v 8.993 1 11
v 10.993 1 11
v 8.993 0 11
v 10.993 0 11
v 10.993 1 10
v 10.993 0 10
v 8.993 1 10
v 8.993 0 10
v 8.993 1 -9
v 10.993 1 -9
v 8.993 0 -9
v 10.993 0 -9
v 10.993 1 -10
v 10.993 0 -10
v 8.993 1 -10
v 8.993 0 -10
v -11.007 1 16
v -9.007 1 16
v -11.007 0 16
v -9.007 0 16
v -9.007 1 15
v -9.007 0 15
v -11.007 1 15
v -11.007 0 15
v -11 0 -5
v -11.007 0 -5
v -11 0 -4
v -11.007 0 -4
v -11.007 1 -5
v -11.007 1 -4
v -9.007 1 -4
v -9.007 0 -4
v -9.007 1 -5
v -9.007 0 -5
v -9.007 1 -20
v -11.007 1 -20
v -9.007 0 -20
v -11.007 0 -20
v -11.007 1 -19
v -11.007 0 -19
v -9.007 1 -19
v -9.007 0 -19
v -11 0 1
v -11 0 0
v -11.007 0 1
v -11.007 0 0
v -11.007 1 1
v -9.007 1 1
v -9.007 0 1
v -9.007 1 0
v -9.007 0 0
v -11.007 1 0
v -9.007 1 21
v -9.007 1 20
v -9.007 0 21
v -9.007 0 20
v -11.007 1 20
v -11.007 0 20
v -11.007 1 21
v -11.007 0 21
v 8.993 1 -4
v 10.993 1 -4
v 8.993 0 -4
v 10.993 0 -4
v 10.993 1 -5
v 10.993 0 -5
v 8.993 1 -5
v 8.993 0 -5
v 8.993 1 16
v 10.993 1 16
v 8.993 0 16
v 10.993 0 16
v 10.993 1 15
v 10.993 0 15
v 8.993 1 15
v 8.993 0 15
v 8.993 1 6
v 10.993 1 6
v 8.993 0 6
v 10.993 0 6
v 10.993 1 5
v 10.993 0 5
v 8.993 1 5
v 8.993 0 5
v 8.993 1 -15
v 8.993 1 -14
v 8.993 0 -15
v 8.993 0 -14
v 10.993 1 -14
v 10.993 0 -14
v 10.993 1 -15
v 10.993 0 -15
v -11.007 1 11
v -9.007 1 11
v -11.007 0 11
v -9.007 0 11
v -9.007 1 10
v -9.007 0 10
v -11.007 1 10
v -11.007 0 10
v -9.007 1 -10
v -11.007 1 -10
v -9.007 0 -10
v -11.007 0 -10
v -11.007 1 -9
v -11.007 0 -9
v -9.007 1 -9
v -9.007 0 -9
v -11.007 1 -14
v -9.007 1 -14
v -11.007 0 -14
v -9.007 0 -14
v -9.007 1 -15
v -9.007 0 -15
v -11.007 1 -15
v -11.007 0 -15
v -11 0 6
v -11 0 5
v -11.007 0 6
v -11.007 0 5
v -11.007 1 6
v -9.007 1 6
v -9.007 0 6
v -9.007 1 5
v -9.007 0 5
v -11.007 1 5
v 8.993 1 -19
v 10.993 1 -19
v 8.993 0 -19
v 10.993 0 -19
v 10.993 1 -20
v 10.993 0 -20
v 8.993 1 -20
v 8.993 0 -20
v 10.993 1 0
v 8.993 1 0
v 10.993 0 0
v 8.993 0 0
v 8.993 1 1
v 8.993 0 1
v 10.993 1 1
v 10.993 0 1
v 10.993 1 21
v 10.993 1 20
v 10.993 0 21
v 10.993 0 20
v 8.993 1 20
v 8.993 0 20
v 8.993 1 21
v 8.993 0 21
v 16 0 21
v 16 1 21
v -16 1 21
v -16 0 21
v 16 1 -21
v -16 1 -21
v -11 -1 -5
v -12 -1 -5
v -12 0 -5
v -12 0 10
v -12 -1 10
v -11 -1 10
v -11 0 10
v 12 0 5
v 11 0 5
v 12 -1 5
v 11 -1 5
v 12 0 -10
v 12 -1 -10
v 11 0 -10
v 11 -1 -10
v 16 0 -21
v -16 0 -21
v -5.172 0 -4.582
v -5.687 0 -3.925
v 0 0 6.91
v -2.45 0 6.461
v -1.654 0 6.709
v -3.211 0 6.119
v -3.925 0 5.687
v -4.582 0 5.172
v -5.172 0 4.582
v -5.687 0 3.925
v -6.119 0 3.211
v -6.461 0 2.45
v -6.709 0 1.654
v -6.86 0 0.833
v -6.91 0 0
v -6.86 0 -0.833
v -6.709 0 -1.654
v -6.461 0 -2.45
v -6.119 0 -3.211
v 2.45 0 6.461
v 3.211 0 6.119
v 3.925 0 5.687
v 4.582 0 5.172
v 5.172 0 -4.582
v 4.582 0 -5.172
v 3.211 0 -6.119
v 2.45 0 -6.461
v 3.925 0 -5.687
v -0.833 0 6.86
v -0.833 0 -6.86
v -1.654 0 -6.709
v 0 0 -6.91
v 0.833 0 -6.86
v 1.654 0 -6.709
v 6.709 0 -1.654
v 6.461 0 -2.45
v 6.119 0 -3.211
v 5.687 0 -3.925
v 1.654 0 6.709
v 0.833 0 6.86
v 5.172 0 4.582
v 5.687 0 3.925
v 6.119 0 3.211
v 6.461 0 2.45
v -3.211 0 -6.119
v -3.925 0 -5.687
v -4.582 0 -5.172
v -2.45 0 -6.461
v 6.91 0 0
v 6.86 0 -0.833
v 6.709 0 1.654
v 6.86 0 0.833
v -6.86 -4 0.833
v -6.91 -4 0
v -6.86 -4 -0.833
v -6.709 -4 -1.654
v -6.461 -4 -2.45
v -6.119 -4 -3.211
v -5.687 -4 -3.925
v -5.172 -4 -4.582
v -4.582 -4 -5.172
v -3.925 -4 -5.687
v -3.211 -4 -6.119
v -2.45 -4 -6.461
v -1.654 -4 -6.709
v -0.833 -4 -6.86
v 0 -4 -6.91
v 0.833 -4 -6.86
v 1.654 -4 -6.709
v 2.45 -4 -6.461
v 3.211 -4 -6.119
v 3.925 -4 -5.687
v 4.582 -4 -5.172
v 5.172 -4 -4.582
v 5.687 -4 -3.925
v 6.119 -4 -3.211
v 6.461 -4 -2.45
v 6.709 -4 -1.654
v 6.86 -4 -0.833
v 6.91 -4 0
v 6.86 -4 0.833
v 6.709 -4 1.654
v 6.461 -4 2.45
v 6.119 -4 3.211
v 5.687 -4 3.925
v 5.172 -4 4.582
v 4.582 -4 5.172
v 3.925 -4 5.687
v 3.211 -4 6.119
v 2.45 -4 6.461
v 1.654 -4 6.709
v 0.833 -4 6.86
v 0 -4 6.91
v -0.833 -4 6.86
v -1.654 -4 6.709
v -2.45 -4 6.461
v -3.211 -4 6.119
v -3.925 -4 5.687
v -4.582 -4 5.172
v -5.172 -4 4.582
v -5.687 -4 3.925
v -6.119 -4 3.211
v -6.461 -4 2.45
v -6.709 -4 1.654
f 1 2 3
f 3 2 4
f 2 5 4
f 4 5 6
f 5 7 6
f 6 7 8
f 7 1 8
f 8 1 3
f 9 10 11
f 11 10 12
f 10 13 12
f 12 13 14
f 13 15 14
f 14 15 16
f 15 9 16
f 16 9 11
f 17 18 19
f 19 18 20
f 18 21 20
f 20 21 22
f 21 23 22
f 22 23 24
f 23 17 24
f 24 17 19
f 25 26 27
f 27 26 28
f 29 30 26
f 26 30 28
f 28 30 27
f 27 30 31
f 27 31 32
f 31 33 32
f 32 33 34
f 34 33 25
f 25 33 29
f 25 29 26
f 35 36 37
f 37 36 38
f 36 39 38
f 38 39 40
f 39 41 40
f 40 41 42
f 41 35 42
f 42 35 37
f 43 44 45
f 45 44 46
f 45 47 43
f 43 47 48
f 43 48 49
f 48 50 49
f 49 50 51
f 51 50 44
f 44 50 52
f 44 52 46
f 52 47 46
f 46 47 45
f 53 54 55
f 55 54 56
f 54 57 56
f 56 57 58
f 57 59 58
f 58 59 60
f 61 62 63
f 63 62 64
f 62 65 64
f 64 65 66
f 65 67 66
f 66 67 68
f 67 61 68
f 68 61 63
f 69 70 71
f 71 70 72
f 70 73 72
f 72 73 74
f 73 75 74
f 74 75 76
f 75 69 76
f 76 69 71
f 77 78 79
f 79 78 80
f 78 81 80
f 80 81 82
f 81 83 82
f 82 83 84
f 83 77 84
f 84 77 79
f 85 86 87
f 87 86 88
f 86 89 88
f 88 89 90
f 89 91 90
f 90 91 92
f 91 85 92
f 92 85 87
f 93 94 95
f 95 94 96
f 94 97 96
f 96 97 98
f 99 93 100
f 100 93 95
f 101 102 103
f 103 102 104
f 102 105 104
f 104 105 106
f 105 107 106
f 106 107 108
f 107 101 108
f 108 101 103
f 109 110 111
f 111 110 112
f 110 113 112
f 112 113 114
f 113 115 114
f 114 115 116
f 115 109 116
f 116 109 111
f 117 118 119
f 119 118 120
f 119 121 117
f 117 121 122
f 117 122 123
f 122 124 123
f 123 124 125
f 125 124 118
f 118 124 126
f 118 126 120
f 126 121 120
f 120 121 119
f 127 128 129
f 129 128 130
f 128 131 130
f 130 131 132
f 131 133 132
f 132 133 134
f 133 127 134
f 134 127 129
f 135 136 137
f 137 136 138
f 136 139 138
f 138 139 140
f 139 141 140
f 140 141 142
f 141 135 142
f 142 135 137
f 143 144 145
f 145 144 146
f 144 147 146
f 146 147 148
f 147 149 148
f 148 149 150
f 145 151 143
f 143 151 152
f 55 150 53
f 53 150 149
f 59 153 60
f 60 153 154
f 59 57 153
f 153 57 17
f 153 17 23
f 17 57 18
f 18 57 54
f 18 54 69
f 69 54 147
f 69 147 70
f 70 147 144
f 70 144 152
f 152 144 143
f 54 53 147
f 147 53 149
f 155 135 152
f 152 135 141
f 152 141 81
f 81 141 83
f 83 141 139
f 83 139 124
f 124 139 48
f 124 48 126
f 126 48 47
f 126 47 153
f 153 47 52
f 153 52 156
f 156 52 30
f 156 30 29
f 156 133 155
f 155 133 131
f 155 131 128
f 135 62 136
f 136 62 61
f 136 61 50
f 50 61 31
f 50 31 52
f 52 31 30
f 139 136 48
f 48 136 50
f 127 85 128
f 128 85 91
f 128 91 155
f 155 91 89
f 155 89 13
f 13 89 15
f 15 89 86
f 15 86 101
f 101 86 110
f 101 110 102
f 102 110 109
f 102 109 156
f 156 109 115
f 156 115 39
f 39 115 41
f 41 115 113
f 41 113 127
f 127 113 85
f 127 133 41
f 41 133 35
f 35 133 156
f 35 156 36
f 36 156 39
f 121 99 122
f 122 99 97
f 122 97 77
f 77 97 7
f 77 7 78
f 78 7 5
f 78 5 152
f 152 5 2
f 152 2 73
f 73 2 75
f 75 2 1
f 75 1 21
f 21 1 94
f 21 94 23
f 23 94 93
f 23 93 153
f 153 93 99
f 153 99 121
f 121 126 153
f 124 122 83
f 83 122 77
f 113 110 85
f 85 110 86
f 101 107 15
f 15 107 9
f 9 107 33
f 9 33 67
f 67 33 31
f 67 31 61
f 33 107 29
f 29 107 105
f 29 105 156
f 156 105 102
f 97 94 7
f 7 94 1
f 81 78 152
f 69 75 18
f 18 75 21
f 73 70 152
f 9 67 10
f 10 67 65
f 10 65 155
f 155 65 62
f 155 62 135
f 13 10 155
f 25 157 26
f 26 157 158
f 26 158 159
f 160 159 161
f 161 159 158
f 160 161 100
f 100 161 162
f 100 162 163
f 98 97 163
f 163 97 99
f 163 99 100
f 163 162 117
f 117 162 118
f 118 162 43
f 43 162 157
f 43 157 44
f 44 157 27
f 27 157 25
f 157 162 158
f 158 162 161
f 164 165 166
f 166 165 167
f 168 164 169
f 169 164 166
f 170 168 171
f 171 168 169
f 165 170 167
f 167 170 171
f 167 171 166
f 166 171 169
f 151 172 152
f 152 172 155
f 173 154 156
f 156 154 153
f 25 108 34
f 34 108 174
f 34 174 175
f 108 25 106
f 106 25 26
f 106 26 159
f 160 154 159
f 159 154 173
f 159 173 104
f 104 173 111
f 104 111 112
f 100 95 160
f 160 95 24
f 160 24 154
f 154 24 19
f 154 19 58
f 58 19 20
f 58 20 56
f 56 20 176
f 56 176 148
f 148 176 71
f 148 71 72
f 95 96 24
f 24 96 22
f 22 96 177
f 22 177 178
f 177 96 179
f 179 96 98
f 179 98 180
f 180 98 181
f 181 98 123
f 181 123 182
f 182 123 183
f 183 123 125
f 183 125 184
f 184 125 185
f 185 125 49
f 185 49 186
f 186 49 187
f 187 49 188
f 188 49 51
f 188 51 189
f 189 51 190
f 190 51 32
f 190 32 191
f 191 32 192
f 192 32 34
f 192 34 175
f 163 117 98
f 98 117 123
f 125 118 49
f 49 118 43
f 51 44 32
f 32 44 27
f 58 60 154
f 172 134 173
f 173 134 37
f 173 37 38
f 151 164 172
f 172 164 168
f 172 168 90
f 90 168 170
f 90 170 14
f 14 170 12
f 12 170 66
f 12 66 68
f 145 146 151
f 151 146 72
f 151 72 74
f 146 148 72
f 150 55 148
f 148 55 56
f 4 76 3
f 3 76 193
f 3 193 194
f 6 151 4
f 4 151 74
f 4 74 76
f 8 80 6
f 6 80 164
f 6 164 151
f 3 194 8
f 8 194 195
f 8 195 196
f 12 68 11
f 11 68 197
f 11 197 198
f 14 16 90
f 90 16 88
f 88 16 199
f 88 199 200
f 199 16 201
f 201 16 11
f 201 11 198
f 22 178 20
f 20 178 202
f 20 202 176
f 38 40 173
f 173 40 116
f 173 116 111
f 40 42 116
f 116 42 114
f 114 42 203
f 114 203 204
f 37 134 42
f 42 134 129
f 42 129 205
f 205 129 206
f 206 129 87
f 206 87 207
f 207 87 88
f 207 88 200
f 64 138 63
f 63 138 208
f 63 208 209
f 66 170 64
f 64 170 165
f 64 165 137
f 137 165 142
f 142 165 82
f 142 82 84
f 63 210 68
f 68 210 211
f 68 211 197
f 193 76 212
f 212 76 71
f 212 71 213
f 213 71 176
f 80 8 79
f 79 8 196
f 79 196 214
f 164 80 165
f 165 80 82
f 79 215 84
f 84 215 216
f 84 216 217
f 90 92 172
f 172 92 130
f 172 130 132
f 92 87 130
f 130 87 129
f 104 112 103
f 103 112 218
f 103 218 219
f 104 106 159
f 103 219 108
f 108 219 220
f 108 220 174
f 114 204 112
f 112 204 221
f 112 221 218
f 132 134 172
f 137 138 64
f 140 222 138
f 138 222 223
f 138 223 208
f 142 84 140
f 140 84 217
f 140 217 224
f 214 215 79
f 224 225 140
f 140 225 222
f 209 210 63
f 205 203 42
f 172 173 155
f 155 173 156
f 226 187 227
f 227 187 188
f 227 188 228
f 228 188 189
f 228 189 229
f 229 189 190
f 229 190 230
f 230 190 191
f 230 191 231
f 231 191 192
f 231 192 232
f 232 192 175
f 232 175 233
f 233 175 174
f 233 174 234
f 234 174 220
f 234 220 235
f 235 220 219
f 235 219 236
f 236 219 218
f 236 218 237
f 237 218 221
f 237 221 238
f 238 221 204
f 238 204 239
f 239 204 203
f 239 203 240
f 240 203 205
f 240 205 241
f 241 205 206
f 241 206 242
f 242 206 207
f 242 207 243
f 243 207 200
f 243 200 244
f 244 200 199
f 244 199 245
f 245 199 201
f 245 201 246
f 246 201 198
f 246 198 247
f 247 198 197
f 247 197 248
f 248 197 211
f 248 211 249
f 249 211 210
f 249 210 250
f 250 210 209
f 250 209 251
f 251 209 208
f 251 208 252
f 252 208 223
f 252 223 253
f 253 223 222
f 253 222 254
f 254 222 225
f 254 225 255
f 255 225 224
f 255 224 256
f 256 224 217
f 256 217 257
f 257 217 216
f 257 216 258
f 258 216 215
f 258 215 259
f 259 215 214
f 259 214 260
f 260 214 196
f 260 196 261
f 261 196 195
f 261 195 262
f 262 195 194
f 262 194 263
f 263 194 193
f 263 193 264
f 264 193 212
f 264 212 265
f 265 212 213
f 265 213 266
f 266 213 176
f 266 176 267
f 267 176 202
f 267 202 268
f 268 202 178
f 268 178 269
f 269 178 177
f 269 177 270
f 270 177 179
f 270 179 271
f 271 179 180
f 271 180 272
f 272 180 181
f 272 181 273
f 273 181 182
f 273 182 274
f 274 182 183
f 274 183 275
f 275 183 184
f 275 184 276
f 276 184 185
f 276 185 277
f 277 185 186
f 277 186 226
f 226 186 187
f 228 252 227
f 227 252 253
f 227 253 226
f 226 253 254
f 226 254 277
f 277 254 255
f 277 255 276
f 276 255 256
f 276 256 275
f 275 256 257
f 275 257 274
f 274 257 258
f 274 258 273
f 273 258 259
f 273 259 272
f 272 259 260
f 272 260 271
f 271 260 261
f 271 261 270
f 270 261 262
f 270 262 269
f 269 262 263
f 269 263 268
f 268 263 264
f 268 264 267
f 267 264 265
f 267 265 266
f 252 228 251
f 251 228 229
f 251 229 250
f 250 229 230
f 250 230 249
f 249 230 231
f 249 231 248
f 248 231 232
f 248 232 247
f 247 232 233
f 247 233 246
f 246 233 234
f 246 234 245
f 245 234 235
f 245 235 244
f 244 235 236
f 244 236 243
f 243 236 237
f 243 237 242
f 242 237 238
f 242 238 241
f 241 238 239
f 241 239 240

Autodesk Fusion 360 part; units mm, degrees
sketch "Sketch1" plane through (0, 0, 0) normal (0, 1, 0) x (1, 0, 0)
  circle A0 centre (0, 0) radius 6.91
  dimension "d1" = 13.82
extrude "Extrude1" add sketch "Sketch1" against normal blind 4 makes body 1
sketch "Sketch2" plane through (0, 0, 0) normal (0, 1, 0) x (1, 0, 0)
  line L0 (11, -21) -> (-11, -21)
  line L1 (-11, -21) -> (-11, 21)
  line L2 (-11, 21) -> (11, 21)
  line L3 (11, 21) -> (11, -21)
  line L4 (11, -21) -> (-11, 21) construction
  line L5 (-11, -21) -> (11, 21) construction
  dimension "d4" = 22
  dimension "d5" = 42
extrude "Extrude2" add sketch "Sketch2" along normal blind 1 bodies 1
extrude "Extrude3" add 1 faces at (-11, 0.3333, 7) along direction (-1, 0, 0) blind 5 on bodies 1 bodies 1
extrude "Extrude4" add 1 faces at (11, 0.3333, -7) along direction (1, 0, 0) blind 5 on bodies 1 bodies 1
sketch "Sketch3" plane through (0, 0, 0) normal (0, -1, 0) x (1, 0, 0)
  line L0 (-16, -21) -> (16, -21)
  line L1 (16, -21) -> (16, 21)
  line L2 (16, 21) -> (-16, 21)
  line L3 (-16, 21) -> (-16, -21)
  circle A0 centre (0, 0) radius 6.91
  line L4 (11, -10) -> (12, -10)
  line L5 (12, -10) -> (12, 5)
  line L6 (12, 5) -> (11, 5)
  line L7 (11, 5) -> (11, -10)
  line L8 (-11, 10) -> (-12, 10)
  line L9 (-12, 10) -> (-12, -5)
  line L10 (-12, -5) -> (-11, -5)
  line L11 (-11, -5) -> (-11, 10)
  dimension "d67" = 15
extrude "Extrude5" add sketch "Sketch3" along normal blind 1 separate body contours L4 L5 L6 L7 makes body 2
extrude "Extrude6" add sketch "Sketch3" along normal blind 1 separate body contours L8 L9 L10 L11 makes body 3
combine "Combine1" operation add target body 1 tool bodies 2 3
sketch "Sketch4" plane through (0, 1, 0) normal (0, 1, 0) x (-1, 0, 0)
  line L0 (-16, -21) -> (16, -21)
  line L1 (16, -21) -> (16, 21)
  line L2 (16, 21) -> (-16, 21)
  line L3 (-16, 21) -> (-16, -21)
  line L4 (11.0067, 21) -> (9.0067, 21)
  line L5 (9.0067, 21) -> (9.0067, 20)
  line L6 (9.0067, 20) -> (11.0067, 20)
  line L7 (11.0067, 20) -> (11.0067, 21)
  line L8 (9.0067, 15) -> (11.0067, 15)
  line L9 (9.0067, 16) -> (9.0067, 15)
  line L10 (11.0067, 16) -> (9.0067, 16)
  line L11 (11.0067, 15) -> (11.0067, 16)
  line L12 (9.0067, 5) -> (11.0067, 5)
  line L13 (9.0067, 6) -> (9.0067, 5)
  line L14 (11.0067, 6) -> (9.0067, 6)
  line L15 (11.0067, 5) -> (11.0067, 6)
  line L16 (9.0067, 10) -> (11.0067, 10)
  line L17 (9.0067, 11) -> (9.0067, 10)
  line L18 (11.0067, 11) -> (9.0067, 11)
  line L19 (11.0067, 10) -> (11.0067, 11)
  line L20 (11.0067, 1) -> (9.0067, 1)
  line L21 (9.0067, 0) -> (11.0067, 0)
  line L22 (9.0067, 1) -> (9.0067, 0)
  line L23 (11.0067, 0) -> (11.0067, 1)
  line L24 (11.0067, -4) -> (9.0067, -4)
  line L25 (9.0067, -4) -> (9.0067, -5)
  line L26 (11.0067, -5) -> (11.0067, -4)
  line L27 (9.0067, -5) -> (11.0067, -5)
  line L28 (11.0067, -9) -> (9.0067, -9)
  line L29 (9.0067, -10) -> (11.0067, -10)
  line L30 (11.0067, -10) -> (11.0067, -9)
  line L31 (9.0067, -9) -> (9.0067, -10)
  line L32 (11.0067, -14) -> (9.0067, -14)
  line L33 (9.0067, -14) -> (9.0067, -15)
  line L34 (9.0067, -15) -> (11.0067, -15)
  line L35 (11.0067, -15) -> (11.0067, -14)
  line L36 (11.0067, -19) -> (9.0067, -19)
  line L37 (9.0067, -20) -> (11.0067, -20)
  line L38 (11.0067, -20) -> (11.0067, -19)
  line L39 (9.0067, -19) -> (9.0067, -20)
  line L40 (-10.9933, 21) -> (-10.9933, 20)
  line L41 (-10.9933, 20) -> (-8.9933, 20)
  line L42 (-8.9933, 20) -> (-8.9933, 21)
  line L43 (-8.9933, 21) -> (-10.9933, 21)
  line L44 (-10.9933, 16) -> (-10.9933, 15)
  line L45 (-10.9933, 15) -> (-8.9933, 15)
  line L46 (-8.9933, 16) -> (-10.9933, 16)
  line L47 (-8.9933, 15) -> (-8.9933, 16)
  line L48 (-10.9933, 10) -> (-8.9933, 10)
  line L49 (-8.9933, 11) -> (-10.9933, 11)
  line L50 (-10.9933, 11) -> (-10.9933, 10)
  line L51 (-8.9933, 10) -> (-8.9933, 11)
  line L52 (-10.9933, 6) -> (-10.9933, 5)
  line L53 (-8.9933, 6) -> (-10.9933, 6)
  line L54 (-10.9933, 5) -> (-8.9933, 5)
  line L55 (-8.9933, 5) -> (-8.9933, 6)
  line L56 (-8.9933, 0) -> (-8.9933, 1)
  line L57 (-10.9933, 0) -> (-8.9933, 0)
  line L58 (-8.9933, 1) -> (-10.9933, 1)
  line L59 (-10.9933, 1) -> (-10.9933, 0)
  line L60 (-8.9933, -4) -> (-10.9933, -4)
  line L61 (-10.9933, -4) -> (-10.9933, -5)
  line L62 (-10.9933, -5) -> (-8.9933, -5)
  line L63 (-8.9933, -5) -> (-8.9933, -4)
  line L64 (-8.9933, -9) -> (-10.9933, -9)
  line L65 (-10.9933, -10) -> (-8.9933, -10)
  line L66 (-10.9933, -9) -> (-10.9933, -10)
  line L67 (-8.9933, -10) -> (-8.9933, -9)
  line L68 (-8.9933, -14) -> (-10.9933, -14)
  line L69 (-10.9933, -14) -> (-10.9933, -15)
  line L70 (-8.9933, -15) -> (-8.9933, -14)
  line L71 (-10.9933, -15) -> (-8.9933, -15)
  line L72 (-8.9933, -19) -> (-10.9933, -19)
  line L73 (-10.9933, -19) -> (-10.9933, -20)
  line L74 (-10.9933, -20) -> (-8.9933, -20)
  line L75 (-8.9933, -20) -> (-8.9933, -19)
  dimension "d88" = 2
  dimension "d89" = 1
  dimension "d90" = 2
  dimension "d91" = 1
  dimension "d92" = 2
  dimension "d93" = 1
  dimension "d94" = 2
  dimension "d95" = 1
  dimension "d96" = 2
  dimension "d97" = 1
  dimension "d98" = 2
  dimension "d99" = 1
  dimension "d100" = 2
  dimension "d101" = 1
  dimension "d102" = 2
  dimension "d103" = 1
  dimension "d104" = 2
  dimension "d105" = 1
  dimension "d106" = 2
  dimension "d107" = 1
  dimension "d108" = 2
  dimension "d109" = 1
  dimension "d110" = 2
  dimension "d111" = 1
  dimension "d112" = 2
  dimension "d113" = 1
  dimension "d114" = 2
  dimension "d115" = 1
  dimension "d116" = 2
  dimension "d117" = 1
  dimension "d118" = 2
  dimension "d119" = 1
  dimension "d120" = 2
  dimension "d121" = 1
  dimension "d122" = 2
  dimension "d123" = 1
extrude "Extrude7" cut sketch "Sketch4" against normal blind 1 contours L2 L40 L41 L42 L43 | L2 L4 L5 L6 L7 | L8 L9 L10 L11 | L12 L13 L14 L15 | L16 L17 L18 L19 | L20 L21 L22 L23 | L24 L25 L26 L27 | L28 L29 L30 L31 | L32 L33 L34 L35 | L36 L37 L38 L39 | L44 L45 L46 L47 | L48 L49 L50 L51 | L52 L53 L54 L55 | L56 L57 L58 L59 | L60 L61 L62 L63 | L64 L65 L66 L67 | L68 L69 L70 L71 | L72 L73 L74 L75 bodies 1
